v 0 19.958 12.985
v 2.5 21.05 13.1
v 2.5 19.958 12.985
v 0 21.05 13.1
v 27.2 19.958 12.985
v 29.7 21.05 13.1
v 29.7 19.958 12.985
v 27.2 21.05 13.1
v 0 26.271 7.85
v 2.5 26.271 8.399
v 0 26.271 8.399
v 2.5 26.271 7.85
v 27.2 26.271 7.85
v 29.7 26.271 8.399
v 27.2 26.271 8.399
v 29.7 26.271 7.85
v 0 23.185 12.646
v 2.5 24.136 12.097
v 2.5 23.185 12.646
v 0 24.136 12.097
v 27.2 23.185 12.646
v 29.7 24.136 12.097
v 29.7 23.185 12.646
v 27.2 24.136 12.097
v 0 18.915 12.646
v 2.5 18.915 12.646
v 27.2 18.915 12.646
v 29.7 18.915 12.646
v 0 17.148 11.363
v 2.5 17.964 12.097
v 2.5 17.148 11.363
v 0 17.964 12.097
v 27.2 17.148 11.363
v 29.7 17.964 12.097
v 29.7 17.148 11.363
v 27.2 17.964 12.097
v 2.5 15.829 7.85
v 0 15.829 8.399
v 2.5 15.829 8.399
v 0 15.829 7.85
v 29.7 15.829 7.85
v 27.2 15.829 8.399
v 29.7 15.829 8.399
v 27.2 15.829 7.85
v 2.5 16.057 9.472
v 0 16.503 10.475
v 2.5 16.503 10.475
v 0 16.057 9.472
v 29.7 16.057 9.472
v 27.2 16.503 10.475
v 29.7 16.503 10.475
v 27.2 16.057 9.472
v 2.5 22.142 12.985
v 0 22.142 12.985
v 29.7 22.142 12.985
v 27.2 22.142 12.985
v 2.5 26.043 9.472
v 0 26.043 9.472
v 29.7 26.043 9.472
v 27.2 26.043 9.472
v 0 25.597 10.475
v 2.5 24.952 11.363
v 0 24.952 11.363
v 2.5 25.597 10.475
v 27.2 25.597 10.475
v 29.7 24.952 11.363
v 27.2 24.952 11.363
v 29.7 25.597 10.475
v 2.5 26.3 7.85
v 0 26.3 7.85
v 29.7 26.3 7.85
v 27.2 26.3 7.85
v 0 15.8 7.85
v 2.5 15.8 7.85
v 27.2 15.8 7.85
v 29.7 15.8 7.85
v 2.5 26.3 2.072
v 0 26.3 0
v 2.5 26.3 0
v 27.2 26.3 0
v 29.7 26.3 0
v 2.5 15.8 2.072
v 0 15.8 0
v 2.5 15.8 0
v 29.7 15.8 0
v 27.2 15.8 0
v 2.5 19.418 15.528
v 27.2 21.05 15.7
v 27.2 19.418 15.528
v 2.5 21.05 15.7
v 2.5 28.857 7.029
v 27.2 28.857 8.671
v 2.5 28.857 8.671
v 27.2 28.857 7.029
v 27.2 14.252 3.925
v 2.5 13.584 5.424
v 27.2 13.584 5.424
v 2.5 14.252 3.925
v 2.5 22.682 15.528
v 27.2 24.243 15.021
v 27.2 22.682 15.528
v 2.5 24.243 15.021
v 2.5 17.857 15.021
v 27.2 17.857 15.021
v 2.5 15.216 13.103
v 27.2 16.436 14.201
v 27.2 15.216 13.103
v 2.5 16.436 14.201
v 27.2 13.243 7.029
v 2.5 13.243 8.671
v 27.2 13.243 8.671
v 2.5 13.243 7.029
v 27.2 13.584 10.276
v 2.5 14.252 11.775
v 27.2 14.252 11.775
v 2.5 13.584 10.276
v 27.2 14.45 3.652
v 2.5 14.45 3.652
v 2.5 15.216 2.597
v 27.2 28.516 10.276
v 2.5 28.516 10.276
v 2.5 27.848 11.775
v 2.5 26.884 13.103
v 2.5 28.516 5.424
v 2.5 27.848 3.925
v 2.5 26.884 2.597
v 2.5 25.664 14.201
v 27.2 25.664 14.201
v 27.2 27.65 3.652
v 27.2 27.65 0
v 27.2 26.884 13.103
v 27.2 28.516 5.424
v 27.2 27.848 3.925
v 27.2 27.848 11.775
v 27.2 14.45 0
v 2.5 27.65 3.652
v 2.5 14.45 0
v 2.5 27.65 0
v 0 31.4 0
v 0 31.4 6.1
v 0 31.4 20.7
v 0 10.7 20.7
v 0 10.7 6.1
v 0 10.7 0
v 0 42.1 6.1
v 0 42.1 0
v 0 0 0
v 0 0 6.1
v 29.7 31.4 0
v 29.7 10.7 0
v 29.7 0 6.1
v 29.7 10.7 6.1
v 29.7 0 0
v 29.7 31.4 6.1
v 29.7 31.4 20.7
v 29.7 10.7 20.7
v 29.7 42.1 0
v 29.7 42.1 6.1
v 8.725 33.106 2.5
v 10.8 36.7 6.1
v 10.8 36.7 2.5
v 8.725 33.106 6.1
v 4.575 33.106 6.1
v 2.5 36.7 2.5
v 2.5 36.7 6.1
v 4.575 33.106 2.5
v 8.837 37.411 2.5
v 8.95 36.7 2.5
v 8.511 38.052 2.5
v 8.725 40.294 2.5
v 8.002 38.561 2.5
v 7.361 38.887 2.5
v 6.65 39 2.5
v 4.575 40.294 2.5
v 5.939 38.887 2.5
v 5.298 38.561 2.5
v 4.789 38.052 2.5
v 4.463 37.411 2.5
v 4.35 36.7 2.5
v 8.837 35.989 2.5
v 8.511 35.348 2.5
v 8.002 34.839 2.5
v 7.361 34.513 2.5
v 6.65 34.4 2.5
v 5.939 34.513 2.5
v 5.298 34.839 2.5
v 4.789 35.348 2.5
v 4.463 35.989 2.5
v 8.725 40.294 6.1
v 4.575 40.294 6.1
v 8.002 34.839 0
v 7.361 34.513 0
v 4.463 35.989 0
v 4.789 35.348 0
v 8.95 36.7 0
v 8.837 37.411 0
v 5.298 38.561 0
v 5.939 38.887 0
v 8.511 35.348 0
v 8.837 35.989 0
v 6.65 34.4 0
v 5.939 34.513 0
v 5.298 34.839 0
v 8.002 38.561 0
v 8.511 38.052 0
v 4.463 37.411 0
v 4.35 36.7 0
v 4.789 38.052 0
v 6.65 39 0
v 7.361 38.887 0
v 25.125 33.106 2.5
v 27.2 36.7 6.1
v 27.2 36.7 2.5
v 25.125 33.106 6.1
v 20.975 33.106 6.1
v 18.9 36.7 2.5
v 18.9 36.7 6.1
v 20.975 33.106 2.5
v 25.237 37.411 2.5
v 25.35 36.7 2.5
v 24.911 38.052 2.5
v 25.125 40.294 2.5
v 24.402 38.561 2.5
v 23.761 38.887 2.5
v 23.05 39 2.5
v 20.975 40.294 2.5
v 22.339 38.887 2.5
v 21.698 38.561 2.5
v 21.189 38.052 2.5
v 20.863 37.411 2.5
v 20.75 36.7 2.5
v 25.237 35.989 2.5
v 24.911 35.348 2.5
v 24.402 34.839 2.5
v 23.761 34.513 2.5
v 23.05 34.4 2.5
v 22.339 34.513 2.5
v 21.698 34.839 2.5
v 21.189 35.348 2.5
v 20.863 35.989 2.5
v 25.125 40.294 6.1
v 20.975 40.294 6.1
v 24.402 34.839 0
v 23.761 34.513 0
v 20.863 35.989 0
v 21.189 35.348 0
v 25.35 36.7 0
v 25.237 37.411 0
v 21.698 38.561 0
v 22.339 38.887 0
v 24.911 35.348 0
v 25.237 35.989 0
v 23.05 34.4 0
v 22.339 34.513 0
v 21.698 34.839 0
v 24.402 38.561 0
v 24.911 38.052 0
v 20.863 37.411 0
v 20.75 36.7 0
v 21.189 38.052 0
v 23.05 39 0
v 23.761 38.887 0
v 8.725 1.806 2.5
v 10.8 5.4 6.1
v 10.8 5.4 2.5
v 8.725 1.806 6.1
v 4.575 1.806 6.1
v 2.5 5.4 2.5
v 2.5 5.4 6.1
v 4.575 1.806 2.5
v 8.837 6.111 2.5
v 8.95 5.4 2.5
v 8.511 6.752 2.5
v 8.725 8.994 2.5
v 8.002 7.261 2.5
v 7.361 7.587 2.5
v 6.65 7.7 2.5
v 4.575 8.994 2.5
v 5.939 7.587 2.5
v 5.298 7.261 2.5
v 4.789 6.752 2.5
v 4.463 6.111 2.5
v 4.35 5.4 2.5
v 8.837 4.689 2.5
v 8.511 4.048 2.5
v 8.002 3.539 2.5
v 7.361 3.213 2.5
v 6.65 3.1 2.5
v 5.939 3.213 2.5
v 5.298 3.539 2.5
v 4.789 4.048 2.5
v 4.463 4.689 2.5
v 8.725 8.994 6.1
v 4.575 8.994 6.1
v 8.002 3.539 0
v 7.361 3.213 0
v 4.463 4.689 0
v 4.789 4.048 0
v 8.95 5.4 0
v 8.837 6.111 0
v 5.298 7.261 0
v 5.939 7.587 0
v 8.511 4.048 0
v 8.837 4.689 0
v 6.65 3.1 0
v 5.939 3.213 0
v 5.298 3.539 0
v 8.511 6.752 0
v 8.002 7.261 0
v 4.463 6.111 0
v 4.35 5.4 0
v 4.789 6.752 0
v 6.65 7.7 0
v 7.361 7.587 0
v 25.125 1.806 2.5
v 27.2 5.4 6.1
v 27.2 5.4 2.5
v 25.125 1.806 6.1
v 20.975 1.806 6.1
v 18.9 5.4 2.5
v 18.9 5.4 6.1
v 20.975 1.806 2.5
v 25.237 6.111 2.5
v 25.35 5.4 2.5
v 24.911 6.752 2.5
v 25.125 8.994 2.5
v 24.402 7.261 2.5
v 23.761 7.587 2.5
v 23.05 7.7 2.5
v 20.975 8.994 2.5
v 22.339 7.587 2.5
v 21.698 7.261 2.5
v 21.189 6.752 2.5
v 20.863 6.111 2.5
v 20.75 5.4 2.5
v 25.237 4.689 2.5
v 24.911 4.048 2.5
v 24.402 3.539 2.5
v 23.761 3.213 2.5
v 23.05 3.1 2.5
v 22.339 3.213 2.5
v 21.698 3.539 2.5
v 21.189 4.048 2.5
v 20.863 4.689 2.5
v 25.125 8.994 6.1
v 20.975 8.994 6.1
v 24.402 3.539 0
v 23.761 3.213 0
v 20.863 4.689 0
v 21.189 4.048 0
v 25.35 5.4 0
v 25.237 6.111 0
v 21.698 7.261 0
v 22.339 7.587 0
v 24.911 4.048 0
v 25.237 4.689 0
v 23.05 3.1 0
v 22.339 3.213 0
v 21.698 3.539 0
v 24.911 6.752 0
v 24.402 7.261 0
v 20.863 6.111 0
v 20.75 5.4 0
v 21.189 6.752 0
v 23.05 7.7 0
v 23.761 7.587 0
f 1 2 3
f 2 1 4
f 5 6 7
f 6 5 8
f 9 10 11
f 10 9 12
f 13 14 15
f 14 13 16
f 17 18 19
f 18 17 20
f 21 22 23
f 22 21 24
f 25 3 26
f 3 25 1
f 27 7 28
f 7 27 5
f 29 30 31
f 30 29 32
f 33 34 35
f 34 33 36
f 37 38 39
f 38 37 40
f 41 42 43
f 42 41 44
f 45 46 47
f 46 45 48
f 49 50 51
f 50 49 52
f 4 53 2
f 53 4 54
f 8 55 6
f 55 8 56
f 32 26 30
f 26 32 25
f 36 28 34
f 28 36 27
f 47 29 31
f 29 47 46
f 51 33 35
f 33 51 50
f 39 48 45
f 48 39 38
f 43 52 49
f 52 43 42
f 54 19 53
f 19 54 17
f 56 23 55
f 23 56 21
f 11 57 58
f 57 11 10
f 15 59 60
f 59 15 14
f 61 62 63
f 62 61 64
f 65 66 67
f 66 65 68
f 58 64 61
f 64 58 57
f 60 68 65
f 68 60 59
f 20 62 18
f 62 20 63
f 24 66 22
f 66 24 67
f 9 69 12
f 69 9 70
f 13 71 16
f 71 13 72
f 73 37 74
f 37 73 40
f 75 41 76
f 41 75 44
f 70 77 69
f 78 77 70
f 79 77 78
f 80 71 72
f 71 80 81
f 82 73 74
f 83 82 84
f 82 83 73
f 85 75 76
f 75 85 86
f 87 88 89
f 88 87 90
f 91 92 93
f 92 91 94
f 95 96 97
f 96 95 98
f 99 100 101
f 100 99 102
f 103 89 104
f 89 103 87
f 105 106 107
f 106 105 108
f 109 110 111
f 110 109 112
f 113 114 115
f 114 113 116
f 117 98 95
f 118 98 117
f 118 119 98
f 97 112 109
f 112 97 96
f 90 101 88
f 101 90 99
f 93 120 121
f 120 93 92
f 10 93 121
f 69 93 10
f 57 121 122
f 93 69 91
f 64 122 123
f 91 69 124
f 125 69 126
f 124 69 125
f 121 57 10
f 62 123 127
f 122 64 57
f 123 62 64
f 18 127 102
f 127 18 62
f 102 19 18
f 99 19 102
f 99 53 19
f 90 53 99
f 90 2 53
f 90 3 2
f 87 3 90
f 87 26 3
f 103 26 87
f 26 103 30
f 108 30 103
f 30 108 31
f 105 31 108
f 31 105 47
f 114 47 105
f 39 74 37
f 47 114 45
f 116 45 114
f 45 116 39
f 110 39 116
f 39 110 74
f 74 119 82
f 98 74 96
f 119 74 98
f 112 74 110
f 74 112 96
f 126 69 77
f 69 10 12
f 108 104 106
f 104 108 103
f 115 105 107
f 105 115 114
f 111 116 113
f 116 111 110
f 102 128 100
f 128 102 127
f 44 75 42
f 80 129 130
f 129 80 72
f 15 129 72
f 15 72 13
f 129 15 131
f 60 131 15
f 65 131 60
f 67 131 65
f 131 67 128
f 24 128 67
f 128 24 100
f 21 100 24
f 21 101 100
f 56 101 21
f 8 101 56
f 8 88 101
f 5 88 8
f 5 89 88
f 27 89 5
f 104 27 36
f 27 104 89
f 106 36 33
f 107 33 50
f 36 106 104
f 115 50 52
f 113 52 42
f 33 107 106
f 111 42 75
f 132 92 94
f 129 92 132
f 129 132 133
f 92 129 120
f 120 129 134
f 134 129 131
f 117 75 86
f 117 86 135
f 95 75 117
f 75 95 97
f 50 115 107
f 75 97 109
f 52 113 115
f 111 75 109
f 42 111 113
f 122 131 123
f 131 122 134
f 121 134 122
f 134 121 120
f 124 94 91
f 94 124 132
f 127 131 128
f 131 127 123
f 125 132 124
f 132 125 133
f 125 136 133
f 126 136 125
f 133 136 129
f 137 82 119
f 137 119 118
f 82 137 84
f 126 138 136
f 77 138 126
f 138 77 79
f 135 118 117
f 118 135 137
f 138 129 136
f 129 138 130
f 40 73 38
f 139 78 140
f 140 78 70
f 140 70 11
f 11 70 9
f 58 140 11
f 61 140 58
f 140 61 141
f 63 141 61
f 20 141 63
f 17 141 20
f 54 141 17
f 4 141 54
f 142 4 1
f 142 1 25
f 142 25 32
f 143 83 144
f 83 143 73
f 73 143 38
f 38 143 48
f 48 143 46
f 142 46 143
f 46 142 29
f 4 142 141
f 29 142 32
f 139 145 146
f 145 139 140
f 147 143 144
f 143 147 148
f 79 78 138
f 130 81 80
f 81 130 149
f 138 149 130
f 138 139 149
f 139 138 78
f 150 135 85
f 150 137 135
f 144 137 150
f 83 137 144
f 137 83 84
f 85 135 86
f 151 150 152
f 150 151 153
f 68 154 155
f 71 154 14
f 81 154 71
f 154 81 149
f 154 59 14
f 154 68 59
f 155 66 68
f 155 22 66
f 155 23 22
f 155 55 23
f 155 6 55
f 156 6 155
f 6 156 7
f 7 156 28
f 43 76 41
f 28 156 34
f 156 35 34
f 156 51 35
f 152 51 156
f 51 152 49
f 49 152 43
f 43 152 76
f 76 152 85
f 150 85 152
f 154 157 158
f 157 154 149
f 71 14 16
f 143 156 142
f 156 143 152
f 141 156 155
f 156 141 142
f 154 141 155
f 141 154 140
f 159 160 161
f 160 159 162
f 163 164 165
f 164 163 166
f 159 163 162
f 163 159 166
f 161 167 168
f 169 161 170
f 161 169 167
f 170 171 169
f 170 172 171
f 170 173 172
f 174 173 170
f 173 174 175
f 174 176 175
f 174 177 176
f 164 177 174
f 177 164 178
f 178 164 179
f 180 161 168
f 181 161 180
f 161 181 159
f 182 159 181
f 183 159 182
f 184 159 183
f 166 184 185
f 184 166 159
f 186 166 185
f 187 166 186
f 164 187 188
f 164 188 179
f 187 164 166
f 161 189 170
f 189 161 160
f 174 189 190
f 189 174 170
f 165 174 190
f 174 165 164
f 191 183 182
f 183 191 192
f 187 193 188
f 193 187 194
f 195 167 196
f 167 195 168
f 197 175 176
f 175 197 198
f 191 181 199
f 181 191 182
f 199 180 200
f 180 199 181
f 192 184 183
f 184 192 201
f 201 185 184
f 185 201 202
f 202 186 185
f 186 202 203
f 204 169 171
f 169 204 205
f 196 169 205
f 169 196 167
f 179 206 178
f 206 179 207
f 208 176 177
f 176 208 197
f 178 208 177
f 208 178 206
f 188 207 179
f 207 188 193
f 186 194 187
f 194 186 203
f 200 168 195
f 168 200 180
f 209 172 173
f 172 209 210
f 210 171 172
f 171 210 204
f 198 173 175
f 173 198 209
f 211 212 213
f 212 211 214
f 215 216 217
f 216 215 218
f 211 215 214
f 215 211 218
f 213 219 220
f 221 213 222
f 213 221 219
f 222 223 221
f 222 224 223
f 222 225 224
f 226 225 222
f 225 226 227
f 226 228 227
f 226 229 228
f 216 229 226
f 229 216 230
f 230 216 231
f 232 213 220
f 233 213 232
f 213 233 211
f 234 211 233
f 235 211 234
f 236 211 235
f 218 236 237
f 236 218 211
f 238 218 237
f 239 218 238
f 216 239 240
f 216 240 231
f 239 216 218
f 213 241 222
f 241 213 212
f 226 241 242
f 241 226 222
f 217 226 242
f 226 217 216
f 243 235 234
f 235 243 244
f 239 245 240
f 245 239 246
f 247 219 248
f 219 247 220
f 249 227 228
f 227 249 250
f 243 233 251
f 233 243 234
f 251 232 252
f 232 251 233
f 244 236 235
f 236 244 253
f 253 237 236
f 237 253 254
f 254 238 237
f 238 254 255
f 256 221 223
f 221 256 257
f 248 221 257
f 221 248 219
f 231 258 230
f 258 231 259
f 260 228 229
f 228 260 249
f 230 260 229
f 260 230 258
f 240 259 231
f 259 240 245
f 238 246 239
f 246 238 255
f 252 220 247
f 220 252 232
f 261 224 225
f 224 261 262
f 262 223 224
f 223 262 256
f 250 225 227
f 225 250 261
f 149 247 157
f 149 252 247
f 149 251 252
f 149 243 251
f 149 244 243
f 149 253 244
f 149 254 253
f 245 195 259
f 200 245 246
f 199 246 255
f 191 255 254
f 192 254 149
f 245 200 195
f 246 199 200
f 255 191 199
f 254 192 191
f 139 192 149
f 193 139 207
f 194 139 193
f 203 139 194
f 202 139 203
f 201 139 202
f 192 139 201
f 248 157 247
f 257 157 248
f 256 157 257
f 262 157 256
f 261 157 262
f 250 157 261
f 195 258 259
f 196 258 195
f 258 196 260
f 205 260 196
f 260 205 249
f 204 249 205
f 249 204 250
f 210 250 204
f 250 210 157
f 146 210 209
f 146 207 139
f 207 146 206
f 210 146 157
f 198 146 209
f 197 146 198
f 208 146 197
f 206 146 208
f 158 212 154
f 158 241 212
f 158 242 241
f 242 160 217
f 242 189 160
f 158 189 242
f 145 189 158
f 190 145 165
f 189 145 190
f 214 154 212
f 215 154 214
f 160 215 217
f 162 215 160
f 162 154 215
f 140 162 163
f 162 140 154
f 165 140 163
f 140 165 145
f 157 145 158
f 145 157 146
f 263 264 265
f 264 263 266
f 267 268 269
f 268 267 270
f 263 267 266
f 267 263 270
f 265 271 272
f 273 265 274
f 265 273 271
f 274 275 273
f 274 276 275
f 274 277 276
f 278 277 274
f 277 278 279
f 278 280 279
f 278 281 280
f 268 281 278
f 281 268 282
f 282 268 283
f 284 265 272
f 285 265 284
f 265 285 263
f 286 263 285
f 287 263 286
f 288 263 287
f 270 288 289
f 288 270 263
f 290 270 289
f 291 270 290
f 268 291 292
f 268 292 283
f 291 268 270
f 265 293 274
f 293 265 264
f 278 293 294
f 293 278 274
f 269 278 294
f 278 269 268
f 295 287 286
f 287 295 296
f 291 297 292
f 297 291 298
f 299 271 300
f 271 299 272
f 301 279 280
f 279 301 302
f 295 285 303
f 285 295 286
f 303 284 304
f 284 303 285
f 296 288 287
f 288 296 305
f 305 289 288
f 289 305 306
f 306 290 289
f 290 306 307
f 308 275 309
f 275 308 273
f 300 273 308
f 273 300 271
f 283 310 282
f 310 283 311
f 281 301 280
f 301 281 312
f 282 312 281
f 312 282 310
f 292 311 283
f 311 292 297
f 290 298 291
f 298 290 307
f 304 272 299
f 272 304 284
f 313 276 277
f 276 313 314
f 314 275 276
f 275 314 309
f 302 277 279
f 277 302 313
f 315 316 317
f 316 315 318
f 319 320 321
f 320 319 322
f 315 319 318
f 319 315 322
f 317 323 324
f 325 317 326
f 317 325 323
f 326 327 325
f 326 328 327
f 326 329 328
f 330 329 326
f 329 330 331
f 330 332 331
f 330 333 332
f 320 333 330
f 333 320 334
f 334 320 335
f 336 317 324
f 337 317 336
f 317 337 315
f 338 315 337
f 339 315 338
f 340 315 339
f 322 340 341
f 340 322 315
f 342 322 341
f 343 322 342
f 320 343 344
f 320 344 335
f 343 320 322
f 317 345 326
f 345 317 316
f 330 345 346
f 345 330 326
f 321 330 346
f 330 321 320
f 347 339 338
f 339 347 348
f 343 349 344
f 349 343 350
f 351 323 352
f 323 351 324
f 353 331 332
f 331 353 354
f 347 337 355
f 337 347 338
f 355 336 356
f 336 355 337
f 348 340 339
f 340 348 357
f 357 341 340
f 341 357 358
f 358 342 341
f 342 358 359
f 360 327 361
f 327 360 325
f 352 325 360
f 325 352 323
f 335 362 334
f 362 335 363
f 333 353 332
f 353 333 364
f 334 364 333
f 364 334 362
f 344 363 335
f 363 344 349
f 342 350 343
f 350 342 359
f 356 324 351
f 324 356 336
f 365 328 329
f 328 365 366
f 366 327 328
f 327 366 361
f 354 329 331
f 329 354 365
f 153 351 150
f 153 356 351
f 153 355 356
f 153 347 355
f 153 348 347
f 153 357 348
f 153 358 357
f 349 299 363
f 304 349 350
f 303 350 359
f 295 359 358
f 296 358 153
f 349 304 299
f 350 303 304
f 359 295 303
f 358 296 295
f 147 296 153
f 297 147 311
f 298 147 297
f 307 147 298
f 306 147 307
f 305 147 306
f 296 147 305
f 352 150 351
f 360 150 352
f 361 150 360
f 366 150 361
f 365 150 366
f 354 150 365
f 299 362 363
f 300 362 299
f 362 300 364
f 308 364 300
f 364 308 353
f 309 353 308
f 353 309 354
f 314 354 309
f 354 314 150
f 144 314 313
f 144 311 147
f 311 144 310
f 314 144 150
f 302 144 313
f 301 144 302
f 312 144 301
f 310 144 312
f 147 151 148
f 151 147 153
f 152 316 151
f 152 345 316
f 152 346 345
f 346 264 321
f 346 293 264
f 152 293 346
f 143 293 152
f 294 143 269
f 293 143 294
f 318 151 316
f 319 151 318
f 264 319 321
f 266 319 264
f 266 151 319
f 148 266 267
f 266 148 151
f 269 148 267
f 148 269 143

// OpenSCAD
// file: linear_bearing.scad
//By Glen Chung, 2013.
//Dual licenced under Creative Commons Attribution-Share Alike 3.0 and LGPL2 or later

include <MCAD/units.scad>
include <MCAD/materials.scad>

LINEAR_BEARING_dr = 0;  //Inscribed circle
LINEAR_BEARING_D  = 1;  //Outer diameter
LINEAR_BEARING_L  = 2;  //Length
LINEAR_BEARING_B  = 3;  //Outer locking groove B
LINEAR_BEARING_D1 = 4;  //Outer locking groove D1
LINEAR_BEARING_W  = 5;  //W


// Common bearing names
LinearBearing = "LM8UU";

// Linear Bearing dimensions
//  model == "XXXXX"   ?   [    dr,      D,      L,        B,      D1,       W]:
function linearBearingDimensions(model) =
    model == "LM3UU"   ?   [  3*mm,   7*mm,  10*mm,   0.0*mm,   0.0*mm, 0.00*mm]:
    model == "LM4UU"   ?   [  4*mm,   8*mm,  12*mm,   0.0*mm,   0.0*mm, 0.00*mm]:
    model == "LM5UU"   ?   [  5*mm,  10*mm,  15*mm,  10.2*mm,   9.6*mm, 1.10*mm]:
    model == "LM6UU"   ?   [  6*mm,  12*mm,  19*mm,  13.5*mm,  11.5*mm, 1.10*mm]:
    model == "LM8SUU"  ?   [  8*mm,  15*mm,  17*mm,  11.5*mm,  14.3*mm, 1.10*mm]:
    model == "LM10UU"  ?   [ 10*mm,  19*mm,  29*mm,  22.0*mm,  18.0*mm, 1.30*mm]:
    model == "LM12UU"  ?   [ 12*mm,  21*mm,  30*mm,  23.0*mm,  20.0*mm, 1.30*mm]:
    model == "LM13UU"  ?   [ 13*mm,  23*mm,  32*mm,  23.0*mm,  22.0*mm, 1.30*mm]:
    model == "LM16UU"  ?   [ 16*mm,  28*mm,  37*mm,  26.5*mm,  27.0*mm, 1.60*mm]:
    model == "LM20UU"  ?   [ 20*mm,  32*mm,  42*mm,  30.5*mm,  30.5*mm, 1.60*mm]:
    model == "LM25UU"  ?   [ 25*mm,  40*mm,  59*mm,  41.0*mm,  38.0*mm, 1.85*mm]:
    model == "LM30UU"  ?   [ 30*mm,  45*mm,  64*mm,  44.5*mm,  43.0*mm, 1.85*mm]:
    model == "LM35UU"  ?   [ 35*mm,  52*mm,  70*mm,  49.5*mm,  49.0*mm, 2.10*mm]:
    model == "LM40UU"  ?   [ 40*mm,  60*mm,  80*mm,  60.5*mm,  57.0*mm, 2.10*mm]:
    model == "LM50UU"  ?   [ 50*mm,  80*mm, 100*mm,  74.0*mm,  76.5*mm, 2.60*mm]:
    model == "LM60UU"  ?   [ 60*mm,  90*mm, 110*mm,  85.0*mm,  86.5*mm, 3.15*mm]:
    model == "LM80UU"  ?   [ 80*mm, 120*mm, 140*mm, 105.5*mm, 116.0*mm, 4.15*mm]:
    model == "LM100UU" ?   [100*mm, 150*mm, 150*mm, 125.5*mm, 145.0*mm, 4.15*mm]:
  /*model == "LM8UU"   ?*/ [  8*mm,  15*mm,  24*mm,  17.5*mm,  14.3*mm, 1.10*mm];


function linearBearing_dr(model) = linearBearingDimensions(model)[LINEAR_BEARING_dr];
function linearBearing_D(model)  = linearBearingDimensions(model)[LINEAR_BEARING_D];
function linearBearing_L(model)  = linearBearingDimensions(model)[LINEAR_BEARING_L];
function linearBearing_B(model)  = linearBearingDimensions(model)[LINEAR_BEARING_B];
function linearBearing_D1(model) = linearBearingDimensions(model)[LINEAR_BEARING_D1];
function linearBearing_W(model)  = linearBearingDimensions(model)[LINEAR_BEARING_W];

module linearBearing(pos=[0,0,0], angle=[0,0,0], model=LinearBearing,
                material=Steel, sideMaterial=BlackPaint) {
  dr = linearBearing_dr(model);
  D  = linearBearing_D(model);
  L  = linearBearing_L(model);
  B  = linearBearing_B(model);
  D1 = linearBearing_D1(model);
  W  = linearBearing_W(model);

  innerRim = dr + (D - dr) * 0.2;
  outerRim = D - (D - dr) * 0.2;
  midSink = W/4;

  translate(pos) rotate(angle) union() {
    color(material)
      difference() {
        // Basic ring
        Ring([0,0,0], D, dr, L, material, material);

        if(W) {
          // Side shields
          Ring([0,0,-epsilon], outerRim, innerRim, L*epsilon+midSink, sideMaterial, material);
          Ring([0,0,L-midSink-epsilon], outerRim, innerRim, L*epsilon+midSink, sideMaterial, material);
          //Outer locking groove
          Ring([0,0,(L-B)/2], D+epsilon, outerRim+W/2, W, material, material);
          Ring([0,0,L-(L-B)/2], D+epsilon, outerRim+W/2, W, material, material);
        }
      }
      if(W)
        Ring([0,0,midSink], D-L*epsilon, dr+L*epsilon, L-midSink*2, sideMaterial, sideMaterial);
  }

  module Ring(pos, od, id, h, material, holeMaterial) {
    color(material) {
      translate(pos)
        difference() {
          cylinder(r=od/2, h=h,  $fn = 100);
          color(holeMaterial)
            translate([0,0,-10*epsilon])
              cylinder(r=id/2, h=h+20*epsilon,  $fn = 100);
        }
    }
  }

}


//examples
//linearBearing(model="LM8UU");
//linearBearing(model="LM10UU");
// main file
use <linear_bearing.scad>

epsilon = 0.1; // small tolerance used for CSG subtraction/addition

$fn=30;

// screw/nut dimensions
//chttp://www.fairburyfastener.com/xdims_metric_nuts.htm
screw_margin = 0.6;
screw_dia = 4.0 + screw_margin; // M3 = 3 mm, M4 = 4 mm - orig. 3.4
nut_dia = 7.7 + screw_margin; // M3 = 6 mm, M4 = 7.7 mm - orig. 6.5
nut_height = 3.0 + screw_margin; // M3 = 2.3 mm, M4 = 3 mm - orig. 3

// Linear Bearing LM8UU dimensions
// 24x15mm, Inside diameter: 8mm
lm8uu_margin = 0.7;
lm8uuLength = 24 + lm8uu_margin; // 24
lm8uuOutDia = 15 + lm8uu_margin; // 15
lm8uuInDia = 8 + 2.5; // 8

// holder dimensions
margin = 2.5;
length = lm8uuLength + 2*margin; // 31.10;
width = lm8uuOutDia + 2*margin; // 22.10;
height = lm8uuOutDia + 2*margin; // 22.46;

// cut out dimensions
cutout_height = height-2*margin;//11.78;
cutout_width = 1.5;//length/5;//5.95;
cutout_margin = nut_dia+margin;//length/5;//6.4;

// base that holds the nut and screw trap
base_height = nut_height+margin;
base_width = cutout_margin;
base_length = cutout_margin;

module LM8UUHolder() {

    difference() {
        cube([length, width, height]);
    
        union() {
            // smooth rod
            rotate([0,90,0]) translate([-height+lm8uuOutDia/2,width/2,-epsilon]) cylinder(r=lm8uuInDia/2, h=length+2*epsilon);
    
            // cutout for smooth rod    
            translate([-epsilon,(width-lm8uuInDia)/2,height-lm8uuOutDia/2]) cube([length+2*epsilon,lm8uuInDia,lm8uuOutDia/2+epsilon]);
        
            // lm8uu    
            rotate([0,90,0]) translate([-height+lm8uuOutDia/2,width/2,(length-lm8uuLength)/2]) cylinder(r=lm8uuOutDia/2, h=lm8uuLength);
     
            // cutout for lm8uu   
            sidemargin = 2.5;
            topmargin = lm8uuOutDia/2-2*epsilon;
            translate([(length-lm8uuLength)/2,(width-lm8uuOutDia)/2+sidemargin/2,height-topmargin]) cube([lm8uuLength,lm8uuOutDia-sidemargin,topmargin+epsilon]);
        
            //cutouts();                     
        }               
    }
    
    nut_traps2();
}

module cutouts() {
    // cutouts
    translate([cutout_margin, -epsilon, height-cutout_height+epsilon]) cube([cutout_width, width+2*epsilon, cutout_height+2*epsilon]);
        
    // cutouts
    translate([length-cutout_margin-cutout_width, -epsilon, height-cutout_height+epsilon]) cube([cutout_width, width+2*epsilon, cutout_height+2*epsilon]);  
}

module nut_trap2() {
    union() {
        // nut traps
        cylinder(r=nut_dia/2, h=nut_height+epsilon, $fn=6);

        // screw holes
        cylinder(r=screw_dia/2, h=base_height+2*epsilon, $fn=20);		         
    }    
}

module nut_traps2() {
    
    translate([0,-base_width+epsilon,height-base_height]) 
    difference() {
        cube([length,base_width,base_height]);

        translate([margin+nut_dia/2,base_width/2,-epsilon]) nut_trap2();

        translate([length-margin-nut_dia/2,base_width/2,-epsilon]) nut_trap2();
    }

    translate([0,width-epsilon,height-base_height]) 
    difference() {    
        cube([length,base_width,base_height]);        
        translate([margin+nut_dia/2,base_width/2,-epsilon]) nut_trap2();

        translate([length-margin-nut_dia/2,base_width/2,-epsilon]) nut_trap2();
    }
}

module nut_traps() {
      
    translate([0,-base_width+epsilon,height-base_height]) 
    nut_trap();  
    
    translate([length-base_width,-base_width+epsilon,height-base_height]) 
    nut_trap();  

    translate([0,width-epsilon,height-base_height]) 
    nut_trap();  

    translate([length-base_width,width-epsilon,height-base_height]) 
    nut_trap();  
}

module nut_trap() {
    
    difference() {
        cube([base_length,base_width,base_height]);

    // nut traps
    translate([cutout_margin/2,base_width/2,-epsilon])
    union() {
	cylinder(r=nut_dia/2, h=nut_height+epsilon, $fn=6);

	// screw holes
    translate([0,0,0])
	cylinder(r=screw_dia/2, h=base_height+2*epsilon, $fn=20);		 
        }
    }            
}

translate([0,width+base_width-epsilon,height]) rotate([180,0,0]) LM8UUHolder();
